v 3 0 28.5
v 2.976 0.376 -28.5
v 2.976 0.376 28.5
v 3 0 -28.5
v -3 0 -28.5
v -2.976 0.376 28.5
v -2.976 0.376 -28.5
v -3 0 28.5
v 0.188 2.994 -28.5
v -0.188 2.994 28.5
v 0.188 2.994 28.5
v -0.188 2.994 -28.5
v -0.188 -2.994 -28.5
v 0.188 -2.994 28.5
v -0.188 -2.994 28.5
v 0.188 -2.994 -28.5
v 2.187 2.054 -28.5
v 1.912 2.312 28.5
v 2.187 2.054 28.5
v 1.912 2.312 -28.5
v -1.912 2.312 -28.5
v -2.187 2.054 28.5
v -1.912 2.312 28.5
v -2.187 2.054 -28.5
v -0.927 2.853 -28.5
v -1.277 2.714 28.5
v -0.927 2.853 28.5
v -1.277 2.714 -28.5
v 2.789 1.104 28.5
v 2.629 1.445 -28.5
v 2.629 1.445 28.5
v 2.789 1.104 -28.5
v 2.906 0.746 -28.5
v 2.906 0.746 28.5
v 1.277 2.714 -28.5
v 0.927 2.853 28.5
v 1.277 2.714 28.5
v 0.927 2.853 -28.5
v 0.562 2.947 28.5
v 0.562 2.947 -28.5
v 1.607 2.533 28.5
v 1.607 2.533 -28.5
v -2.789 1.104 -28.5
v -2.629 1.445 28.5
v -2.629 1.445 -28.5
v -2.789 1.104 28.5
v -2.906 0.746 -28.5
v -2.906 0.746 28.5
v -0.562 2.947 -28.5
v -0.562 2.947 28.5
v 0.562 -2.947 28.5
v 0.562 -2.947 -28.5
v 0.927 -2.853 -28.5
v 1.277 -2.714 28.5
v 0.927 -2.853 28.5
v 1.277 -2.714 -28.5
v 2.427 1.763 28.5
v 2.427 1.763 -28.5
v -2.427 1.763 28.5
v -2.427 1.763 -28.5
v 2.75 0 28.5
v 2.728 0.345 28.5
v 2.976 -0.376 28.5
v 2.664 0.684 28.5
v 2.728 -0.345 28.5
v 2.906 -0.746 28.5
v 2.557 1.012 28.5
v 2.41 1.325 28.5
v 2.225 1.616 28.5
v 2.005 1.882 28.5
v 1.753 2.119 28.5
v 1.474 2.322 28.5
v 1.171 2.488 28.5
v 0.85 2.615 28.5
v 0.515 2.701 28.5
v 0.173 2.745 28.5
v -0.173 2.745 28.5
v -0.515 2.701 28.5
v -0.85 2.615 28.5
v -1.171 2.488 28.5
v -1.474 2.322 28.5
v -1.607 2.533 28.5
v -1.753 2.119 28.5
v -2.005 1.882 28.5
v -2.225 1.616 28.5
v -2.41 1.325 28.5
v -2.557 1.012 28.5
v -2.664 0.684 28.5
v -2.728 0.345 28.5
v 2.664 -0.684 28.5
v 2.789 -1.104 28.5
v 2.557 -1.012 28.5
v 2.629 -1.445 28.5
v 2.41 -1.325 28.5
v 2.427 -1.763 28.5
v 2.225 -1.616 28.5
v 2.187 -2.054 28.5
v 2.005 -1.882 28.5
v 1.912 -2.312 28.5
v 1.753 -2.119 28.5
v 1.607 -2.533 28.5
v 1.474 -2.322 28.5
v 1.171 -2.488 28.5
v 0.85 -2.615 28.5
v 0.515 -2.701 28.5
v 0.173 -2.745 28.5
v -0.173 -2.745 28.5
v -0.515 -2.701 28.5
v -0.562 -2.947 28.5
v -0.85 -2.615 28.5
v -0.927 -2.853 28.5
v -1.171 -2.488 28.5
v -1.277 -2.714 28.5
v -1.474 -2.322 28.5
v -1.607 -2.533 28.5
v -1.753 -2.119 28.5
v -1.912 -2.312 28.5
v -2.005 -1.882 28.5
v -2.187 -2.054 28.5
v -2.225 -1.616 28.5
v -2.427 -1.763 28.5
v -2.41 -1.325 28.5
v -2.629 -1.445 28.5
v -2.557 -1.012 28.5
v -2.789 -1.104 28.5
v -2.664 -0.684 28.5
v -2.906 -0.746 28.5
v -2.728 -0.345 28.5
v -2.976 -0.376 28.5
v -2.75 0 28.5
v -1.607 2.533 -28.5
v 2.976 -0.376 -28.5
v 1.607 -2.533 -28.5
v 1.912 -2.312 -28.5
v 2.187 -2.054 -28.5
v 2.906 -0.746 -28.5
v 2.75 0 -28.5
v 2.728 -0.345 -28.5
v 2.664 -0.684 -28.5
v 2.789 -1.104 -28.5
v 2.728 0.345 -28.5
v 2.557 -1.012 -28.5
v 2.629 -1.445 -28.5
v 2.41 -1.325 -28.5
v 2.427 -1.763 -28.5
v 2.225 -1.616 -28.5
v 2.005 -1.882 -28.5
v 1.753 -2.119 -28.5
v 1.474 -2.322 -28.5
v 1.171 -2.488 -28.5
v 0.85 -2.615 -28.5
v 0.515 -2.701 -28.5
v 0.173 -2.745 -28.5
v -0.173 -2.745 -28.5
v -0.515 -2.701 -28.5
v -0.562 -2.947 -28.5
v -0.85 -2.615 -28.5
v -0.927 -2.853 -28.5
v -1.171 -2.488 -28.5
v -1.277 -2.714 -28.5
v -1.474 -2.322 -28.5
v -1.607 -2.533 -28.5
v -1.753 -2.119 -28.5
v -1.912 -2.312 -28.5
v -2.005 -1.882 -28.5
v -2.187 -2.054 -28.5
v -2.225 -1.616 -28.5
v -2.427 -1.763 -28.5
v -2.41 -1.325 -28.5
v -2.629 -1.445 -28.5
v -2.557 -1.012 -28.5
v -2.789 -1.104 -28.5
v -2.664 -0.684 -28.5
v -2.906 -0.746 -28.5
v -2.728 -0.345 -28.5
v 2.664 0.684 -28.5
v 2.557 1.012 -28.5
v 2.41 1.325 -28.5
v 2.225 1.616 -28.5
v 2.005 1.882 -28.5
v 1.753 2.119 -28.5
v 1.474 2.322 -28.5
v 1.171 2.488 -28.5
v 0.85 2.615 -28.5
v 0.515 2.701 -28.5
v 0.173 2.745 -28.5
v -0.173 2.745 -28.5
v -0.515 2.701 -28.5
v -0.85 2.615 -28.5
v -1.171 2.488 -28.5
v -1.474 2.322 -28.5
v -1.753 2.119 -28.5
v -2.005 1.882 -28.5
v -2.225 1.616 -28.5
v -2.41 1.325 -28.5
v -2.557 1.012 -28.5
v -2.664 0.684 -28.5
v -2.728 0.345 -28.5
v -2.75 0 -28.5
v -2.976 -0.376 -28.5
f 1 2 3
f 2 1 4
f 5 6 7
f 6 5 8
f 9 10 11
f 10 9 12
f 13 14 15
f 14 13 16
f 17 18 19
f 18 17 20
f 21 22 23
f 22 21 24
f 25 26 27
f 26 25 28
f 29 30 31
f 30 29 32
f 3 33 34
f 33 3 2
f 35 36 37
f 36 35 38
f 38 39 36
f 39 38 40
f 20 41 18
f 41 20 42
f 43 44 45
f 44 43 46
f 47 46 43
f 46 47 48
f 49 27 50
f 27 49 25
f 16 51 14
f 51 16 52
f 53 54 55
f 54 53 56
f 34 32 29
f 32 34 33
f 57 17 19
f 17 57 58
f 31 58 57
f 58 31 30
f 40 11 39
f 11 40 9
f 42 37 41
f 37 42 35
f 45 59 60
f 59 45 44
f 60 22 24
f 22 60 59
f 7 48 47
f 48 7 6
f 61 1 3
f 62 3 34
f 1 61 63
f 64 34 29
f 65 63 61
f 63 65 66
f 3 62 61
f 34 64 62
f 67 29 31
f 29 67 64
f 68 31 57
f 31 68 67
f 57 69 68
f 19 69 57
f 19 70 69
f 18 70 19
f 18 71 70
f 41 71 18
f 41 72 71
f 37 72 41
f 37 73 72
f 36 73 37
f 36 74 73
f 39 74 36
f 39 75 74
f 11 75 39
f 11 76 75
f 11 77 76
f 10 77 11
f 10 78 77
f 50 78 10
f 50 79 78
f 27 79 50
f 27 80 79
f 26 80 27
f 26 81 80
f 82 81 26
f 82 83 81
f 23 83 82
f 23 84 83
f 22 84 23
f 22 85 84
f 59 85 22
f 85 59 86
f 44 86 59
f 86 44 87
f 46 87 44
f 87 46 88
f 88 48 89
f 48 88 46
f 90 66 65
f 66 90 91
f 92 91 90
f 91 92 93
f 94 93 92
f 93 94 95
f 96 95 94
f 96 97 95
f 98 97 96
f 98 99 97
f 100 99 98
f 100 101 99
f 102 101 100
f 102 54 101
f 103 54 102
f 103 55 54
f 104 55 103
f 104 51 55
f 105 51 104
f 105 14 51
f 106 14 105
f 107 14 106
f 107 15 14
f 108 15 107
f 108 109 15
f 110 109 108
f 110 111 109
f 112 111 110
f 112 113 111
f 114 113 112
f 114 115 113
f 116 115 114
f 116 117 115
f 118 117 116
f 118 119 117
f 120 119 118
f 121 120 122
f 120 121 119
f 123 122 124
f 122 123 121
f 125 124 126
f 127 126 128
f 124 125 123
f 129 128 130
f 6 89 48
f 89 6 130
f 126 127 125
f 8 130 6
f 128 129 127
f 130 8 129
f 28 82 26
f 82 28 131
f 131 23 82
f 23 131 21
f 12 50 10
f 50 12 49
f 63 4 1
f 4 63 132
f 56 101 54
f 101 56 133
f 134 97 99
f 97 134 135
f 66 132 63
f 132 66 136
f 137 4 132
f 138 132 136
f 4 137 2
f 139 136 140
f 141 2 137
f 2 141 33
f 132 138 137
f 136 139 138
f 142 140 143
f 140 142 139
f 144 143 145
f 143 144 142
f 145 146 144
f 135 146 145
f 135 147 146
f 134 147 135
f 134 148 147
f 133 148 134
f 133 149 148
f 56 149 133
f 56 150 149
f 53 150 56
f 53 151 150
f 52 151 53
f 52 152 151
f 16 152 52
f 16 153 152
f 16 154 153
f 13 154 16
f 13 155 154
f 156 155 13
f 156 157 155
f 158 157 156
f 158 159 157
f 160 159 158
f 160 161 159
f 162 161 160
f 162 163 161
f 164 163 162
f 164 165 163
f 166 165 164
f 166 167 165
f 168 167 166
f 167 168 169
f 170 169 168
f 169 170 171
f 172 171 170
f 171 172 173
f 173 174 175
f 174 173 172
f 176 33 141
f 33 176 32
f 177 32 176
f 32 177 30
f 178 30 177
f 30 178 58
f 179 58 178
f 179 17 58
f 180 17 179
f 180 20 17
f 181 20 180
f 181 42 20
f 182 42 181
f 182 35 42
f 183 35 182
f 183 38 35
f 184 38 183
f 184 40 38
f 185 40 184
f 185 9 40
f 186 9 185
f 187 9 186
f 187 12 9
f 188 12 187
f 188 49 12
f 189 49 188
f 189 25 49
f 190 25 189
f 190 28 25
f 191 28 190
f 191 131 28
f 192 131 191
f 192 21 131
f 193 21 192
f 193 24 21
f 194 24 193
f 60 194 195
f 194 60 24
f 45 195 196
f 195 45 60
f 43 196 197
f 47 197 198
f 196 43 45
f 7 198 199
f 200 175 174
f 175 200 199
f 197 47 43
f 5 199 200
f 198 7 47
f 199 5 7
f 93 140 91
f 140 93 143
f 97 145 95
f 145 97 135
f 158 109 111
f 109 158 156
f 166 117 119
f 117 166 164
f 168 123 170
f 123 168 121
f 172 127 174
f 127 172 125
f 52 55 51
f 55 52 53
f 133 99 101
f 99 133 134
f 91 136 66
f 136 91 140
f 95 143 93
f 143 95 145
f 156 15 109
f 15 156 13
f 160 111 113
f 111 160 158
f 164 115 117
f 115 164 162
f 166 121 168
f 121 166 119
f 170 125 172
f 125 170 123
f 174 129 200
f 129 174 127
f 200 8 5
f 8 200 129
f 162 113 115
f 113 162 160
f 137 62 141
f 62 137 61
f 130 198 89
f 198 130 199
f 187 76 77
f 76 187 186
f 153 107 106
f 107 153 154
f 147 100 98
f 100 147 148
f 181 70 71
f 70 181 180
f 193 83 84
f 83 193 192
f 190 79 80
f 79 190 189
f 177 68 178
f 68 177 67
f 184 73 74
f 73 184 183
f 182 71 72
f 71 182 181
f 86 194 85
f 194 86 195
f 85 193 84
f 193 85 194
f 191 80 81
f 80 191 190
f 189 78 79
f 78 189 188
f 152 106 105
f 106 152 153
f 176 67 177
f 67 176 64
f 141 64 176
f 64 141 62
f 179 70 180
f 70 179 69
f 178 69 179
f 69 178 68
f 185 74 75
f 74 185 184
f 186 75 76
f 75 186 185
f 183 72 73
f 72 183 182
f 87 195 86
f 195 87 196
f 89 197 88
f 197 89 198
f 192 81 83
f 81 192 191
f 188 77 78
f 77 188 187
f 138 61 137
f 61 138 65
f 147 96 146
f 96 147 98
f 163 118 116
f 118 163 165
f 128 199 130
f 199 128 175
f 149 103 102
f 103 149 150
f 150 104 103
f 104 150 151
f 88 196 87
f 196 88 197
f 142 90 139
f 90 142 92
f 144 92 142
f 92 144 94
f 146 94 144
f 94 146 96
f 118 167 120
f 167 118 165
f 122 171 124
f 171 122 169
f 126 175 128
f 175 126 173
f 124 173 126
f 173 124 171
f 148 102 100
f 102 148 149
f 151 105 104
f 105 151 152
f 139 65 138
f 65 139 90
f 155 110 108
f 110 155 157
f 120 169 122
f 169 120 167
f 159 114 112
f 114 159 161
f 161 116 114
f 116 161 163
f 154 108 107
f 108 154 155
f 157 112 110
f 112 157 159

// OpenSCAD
$fn = 50;


difference() {
	union() {
		translate(v = [0, 0, -28.5000000000]) {
			cylinder(h = 57, r = 3.0000000000);
		}
	}
	union() {
		translate(v = [0, 0, -100.0000000000]) {
			cylinder(h = 200, r = 2.7500000000);
		}
	}
}
